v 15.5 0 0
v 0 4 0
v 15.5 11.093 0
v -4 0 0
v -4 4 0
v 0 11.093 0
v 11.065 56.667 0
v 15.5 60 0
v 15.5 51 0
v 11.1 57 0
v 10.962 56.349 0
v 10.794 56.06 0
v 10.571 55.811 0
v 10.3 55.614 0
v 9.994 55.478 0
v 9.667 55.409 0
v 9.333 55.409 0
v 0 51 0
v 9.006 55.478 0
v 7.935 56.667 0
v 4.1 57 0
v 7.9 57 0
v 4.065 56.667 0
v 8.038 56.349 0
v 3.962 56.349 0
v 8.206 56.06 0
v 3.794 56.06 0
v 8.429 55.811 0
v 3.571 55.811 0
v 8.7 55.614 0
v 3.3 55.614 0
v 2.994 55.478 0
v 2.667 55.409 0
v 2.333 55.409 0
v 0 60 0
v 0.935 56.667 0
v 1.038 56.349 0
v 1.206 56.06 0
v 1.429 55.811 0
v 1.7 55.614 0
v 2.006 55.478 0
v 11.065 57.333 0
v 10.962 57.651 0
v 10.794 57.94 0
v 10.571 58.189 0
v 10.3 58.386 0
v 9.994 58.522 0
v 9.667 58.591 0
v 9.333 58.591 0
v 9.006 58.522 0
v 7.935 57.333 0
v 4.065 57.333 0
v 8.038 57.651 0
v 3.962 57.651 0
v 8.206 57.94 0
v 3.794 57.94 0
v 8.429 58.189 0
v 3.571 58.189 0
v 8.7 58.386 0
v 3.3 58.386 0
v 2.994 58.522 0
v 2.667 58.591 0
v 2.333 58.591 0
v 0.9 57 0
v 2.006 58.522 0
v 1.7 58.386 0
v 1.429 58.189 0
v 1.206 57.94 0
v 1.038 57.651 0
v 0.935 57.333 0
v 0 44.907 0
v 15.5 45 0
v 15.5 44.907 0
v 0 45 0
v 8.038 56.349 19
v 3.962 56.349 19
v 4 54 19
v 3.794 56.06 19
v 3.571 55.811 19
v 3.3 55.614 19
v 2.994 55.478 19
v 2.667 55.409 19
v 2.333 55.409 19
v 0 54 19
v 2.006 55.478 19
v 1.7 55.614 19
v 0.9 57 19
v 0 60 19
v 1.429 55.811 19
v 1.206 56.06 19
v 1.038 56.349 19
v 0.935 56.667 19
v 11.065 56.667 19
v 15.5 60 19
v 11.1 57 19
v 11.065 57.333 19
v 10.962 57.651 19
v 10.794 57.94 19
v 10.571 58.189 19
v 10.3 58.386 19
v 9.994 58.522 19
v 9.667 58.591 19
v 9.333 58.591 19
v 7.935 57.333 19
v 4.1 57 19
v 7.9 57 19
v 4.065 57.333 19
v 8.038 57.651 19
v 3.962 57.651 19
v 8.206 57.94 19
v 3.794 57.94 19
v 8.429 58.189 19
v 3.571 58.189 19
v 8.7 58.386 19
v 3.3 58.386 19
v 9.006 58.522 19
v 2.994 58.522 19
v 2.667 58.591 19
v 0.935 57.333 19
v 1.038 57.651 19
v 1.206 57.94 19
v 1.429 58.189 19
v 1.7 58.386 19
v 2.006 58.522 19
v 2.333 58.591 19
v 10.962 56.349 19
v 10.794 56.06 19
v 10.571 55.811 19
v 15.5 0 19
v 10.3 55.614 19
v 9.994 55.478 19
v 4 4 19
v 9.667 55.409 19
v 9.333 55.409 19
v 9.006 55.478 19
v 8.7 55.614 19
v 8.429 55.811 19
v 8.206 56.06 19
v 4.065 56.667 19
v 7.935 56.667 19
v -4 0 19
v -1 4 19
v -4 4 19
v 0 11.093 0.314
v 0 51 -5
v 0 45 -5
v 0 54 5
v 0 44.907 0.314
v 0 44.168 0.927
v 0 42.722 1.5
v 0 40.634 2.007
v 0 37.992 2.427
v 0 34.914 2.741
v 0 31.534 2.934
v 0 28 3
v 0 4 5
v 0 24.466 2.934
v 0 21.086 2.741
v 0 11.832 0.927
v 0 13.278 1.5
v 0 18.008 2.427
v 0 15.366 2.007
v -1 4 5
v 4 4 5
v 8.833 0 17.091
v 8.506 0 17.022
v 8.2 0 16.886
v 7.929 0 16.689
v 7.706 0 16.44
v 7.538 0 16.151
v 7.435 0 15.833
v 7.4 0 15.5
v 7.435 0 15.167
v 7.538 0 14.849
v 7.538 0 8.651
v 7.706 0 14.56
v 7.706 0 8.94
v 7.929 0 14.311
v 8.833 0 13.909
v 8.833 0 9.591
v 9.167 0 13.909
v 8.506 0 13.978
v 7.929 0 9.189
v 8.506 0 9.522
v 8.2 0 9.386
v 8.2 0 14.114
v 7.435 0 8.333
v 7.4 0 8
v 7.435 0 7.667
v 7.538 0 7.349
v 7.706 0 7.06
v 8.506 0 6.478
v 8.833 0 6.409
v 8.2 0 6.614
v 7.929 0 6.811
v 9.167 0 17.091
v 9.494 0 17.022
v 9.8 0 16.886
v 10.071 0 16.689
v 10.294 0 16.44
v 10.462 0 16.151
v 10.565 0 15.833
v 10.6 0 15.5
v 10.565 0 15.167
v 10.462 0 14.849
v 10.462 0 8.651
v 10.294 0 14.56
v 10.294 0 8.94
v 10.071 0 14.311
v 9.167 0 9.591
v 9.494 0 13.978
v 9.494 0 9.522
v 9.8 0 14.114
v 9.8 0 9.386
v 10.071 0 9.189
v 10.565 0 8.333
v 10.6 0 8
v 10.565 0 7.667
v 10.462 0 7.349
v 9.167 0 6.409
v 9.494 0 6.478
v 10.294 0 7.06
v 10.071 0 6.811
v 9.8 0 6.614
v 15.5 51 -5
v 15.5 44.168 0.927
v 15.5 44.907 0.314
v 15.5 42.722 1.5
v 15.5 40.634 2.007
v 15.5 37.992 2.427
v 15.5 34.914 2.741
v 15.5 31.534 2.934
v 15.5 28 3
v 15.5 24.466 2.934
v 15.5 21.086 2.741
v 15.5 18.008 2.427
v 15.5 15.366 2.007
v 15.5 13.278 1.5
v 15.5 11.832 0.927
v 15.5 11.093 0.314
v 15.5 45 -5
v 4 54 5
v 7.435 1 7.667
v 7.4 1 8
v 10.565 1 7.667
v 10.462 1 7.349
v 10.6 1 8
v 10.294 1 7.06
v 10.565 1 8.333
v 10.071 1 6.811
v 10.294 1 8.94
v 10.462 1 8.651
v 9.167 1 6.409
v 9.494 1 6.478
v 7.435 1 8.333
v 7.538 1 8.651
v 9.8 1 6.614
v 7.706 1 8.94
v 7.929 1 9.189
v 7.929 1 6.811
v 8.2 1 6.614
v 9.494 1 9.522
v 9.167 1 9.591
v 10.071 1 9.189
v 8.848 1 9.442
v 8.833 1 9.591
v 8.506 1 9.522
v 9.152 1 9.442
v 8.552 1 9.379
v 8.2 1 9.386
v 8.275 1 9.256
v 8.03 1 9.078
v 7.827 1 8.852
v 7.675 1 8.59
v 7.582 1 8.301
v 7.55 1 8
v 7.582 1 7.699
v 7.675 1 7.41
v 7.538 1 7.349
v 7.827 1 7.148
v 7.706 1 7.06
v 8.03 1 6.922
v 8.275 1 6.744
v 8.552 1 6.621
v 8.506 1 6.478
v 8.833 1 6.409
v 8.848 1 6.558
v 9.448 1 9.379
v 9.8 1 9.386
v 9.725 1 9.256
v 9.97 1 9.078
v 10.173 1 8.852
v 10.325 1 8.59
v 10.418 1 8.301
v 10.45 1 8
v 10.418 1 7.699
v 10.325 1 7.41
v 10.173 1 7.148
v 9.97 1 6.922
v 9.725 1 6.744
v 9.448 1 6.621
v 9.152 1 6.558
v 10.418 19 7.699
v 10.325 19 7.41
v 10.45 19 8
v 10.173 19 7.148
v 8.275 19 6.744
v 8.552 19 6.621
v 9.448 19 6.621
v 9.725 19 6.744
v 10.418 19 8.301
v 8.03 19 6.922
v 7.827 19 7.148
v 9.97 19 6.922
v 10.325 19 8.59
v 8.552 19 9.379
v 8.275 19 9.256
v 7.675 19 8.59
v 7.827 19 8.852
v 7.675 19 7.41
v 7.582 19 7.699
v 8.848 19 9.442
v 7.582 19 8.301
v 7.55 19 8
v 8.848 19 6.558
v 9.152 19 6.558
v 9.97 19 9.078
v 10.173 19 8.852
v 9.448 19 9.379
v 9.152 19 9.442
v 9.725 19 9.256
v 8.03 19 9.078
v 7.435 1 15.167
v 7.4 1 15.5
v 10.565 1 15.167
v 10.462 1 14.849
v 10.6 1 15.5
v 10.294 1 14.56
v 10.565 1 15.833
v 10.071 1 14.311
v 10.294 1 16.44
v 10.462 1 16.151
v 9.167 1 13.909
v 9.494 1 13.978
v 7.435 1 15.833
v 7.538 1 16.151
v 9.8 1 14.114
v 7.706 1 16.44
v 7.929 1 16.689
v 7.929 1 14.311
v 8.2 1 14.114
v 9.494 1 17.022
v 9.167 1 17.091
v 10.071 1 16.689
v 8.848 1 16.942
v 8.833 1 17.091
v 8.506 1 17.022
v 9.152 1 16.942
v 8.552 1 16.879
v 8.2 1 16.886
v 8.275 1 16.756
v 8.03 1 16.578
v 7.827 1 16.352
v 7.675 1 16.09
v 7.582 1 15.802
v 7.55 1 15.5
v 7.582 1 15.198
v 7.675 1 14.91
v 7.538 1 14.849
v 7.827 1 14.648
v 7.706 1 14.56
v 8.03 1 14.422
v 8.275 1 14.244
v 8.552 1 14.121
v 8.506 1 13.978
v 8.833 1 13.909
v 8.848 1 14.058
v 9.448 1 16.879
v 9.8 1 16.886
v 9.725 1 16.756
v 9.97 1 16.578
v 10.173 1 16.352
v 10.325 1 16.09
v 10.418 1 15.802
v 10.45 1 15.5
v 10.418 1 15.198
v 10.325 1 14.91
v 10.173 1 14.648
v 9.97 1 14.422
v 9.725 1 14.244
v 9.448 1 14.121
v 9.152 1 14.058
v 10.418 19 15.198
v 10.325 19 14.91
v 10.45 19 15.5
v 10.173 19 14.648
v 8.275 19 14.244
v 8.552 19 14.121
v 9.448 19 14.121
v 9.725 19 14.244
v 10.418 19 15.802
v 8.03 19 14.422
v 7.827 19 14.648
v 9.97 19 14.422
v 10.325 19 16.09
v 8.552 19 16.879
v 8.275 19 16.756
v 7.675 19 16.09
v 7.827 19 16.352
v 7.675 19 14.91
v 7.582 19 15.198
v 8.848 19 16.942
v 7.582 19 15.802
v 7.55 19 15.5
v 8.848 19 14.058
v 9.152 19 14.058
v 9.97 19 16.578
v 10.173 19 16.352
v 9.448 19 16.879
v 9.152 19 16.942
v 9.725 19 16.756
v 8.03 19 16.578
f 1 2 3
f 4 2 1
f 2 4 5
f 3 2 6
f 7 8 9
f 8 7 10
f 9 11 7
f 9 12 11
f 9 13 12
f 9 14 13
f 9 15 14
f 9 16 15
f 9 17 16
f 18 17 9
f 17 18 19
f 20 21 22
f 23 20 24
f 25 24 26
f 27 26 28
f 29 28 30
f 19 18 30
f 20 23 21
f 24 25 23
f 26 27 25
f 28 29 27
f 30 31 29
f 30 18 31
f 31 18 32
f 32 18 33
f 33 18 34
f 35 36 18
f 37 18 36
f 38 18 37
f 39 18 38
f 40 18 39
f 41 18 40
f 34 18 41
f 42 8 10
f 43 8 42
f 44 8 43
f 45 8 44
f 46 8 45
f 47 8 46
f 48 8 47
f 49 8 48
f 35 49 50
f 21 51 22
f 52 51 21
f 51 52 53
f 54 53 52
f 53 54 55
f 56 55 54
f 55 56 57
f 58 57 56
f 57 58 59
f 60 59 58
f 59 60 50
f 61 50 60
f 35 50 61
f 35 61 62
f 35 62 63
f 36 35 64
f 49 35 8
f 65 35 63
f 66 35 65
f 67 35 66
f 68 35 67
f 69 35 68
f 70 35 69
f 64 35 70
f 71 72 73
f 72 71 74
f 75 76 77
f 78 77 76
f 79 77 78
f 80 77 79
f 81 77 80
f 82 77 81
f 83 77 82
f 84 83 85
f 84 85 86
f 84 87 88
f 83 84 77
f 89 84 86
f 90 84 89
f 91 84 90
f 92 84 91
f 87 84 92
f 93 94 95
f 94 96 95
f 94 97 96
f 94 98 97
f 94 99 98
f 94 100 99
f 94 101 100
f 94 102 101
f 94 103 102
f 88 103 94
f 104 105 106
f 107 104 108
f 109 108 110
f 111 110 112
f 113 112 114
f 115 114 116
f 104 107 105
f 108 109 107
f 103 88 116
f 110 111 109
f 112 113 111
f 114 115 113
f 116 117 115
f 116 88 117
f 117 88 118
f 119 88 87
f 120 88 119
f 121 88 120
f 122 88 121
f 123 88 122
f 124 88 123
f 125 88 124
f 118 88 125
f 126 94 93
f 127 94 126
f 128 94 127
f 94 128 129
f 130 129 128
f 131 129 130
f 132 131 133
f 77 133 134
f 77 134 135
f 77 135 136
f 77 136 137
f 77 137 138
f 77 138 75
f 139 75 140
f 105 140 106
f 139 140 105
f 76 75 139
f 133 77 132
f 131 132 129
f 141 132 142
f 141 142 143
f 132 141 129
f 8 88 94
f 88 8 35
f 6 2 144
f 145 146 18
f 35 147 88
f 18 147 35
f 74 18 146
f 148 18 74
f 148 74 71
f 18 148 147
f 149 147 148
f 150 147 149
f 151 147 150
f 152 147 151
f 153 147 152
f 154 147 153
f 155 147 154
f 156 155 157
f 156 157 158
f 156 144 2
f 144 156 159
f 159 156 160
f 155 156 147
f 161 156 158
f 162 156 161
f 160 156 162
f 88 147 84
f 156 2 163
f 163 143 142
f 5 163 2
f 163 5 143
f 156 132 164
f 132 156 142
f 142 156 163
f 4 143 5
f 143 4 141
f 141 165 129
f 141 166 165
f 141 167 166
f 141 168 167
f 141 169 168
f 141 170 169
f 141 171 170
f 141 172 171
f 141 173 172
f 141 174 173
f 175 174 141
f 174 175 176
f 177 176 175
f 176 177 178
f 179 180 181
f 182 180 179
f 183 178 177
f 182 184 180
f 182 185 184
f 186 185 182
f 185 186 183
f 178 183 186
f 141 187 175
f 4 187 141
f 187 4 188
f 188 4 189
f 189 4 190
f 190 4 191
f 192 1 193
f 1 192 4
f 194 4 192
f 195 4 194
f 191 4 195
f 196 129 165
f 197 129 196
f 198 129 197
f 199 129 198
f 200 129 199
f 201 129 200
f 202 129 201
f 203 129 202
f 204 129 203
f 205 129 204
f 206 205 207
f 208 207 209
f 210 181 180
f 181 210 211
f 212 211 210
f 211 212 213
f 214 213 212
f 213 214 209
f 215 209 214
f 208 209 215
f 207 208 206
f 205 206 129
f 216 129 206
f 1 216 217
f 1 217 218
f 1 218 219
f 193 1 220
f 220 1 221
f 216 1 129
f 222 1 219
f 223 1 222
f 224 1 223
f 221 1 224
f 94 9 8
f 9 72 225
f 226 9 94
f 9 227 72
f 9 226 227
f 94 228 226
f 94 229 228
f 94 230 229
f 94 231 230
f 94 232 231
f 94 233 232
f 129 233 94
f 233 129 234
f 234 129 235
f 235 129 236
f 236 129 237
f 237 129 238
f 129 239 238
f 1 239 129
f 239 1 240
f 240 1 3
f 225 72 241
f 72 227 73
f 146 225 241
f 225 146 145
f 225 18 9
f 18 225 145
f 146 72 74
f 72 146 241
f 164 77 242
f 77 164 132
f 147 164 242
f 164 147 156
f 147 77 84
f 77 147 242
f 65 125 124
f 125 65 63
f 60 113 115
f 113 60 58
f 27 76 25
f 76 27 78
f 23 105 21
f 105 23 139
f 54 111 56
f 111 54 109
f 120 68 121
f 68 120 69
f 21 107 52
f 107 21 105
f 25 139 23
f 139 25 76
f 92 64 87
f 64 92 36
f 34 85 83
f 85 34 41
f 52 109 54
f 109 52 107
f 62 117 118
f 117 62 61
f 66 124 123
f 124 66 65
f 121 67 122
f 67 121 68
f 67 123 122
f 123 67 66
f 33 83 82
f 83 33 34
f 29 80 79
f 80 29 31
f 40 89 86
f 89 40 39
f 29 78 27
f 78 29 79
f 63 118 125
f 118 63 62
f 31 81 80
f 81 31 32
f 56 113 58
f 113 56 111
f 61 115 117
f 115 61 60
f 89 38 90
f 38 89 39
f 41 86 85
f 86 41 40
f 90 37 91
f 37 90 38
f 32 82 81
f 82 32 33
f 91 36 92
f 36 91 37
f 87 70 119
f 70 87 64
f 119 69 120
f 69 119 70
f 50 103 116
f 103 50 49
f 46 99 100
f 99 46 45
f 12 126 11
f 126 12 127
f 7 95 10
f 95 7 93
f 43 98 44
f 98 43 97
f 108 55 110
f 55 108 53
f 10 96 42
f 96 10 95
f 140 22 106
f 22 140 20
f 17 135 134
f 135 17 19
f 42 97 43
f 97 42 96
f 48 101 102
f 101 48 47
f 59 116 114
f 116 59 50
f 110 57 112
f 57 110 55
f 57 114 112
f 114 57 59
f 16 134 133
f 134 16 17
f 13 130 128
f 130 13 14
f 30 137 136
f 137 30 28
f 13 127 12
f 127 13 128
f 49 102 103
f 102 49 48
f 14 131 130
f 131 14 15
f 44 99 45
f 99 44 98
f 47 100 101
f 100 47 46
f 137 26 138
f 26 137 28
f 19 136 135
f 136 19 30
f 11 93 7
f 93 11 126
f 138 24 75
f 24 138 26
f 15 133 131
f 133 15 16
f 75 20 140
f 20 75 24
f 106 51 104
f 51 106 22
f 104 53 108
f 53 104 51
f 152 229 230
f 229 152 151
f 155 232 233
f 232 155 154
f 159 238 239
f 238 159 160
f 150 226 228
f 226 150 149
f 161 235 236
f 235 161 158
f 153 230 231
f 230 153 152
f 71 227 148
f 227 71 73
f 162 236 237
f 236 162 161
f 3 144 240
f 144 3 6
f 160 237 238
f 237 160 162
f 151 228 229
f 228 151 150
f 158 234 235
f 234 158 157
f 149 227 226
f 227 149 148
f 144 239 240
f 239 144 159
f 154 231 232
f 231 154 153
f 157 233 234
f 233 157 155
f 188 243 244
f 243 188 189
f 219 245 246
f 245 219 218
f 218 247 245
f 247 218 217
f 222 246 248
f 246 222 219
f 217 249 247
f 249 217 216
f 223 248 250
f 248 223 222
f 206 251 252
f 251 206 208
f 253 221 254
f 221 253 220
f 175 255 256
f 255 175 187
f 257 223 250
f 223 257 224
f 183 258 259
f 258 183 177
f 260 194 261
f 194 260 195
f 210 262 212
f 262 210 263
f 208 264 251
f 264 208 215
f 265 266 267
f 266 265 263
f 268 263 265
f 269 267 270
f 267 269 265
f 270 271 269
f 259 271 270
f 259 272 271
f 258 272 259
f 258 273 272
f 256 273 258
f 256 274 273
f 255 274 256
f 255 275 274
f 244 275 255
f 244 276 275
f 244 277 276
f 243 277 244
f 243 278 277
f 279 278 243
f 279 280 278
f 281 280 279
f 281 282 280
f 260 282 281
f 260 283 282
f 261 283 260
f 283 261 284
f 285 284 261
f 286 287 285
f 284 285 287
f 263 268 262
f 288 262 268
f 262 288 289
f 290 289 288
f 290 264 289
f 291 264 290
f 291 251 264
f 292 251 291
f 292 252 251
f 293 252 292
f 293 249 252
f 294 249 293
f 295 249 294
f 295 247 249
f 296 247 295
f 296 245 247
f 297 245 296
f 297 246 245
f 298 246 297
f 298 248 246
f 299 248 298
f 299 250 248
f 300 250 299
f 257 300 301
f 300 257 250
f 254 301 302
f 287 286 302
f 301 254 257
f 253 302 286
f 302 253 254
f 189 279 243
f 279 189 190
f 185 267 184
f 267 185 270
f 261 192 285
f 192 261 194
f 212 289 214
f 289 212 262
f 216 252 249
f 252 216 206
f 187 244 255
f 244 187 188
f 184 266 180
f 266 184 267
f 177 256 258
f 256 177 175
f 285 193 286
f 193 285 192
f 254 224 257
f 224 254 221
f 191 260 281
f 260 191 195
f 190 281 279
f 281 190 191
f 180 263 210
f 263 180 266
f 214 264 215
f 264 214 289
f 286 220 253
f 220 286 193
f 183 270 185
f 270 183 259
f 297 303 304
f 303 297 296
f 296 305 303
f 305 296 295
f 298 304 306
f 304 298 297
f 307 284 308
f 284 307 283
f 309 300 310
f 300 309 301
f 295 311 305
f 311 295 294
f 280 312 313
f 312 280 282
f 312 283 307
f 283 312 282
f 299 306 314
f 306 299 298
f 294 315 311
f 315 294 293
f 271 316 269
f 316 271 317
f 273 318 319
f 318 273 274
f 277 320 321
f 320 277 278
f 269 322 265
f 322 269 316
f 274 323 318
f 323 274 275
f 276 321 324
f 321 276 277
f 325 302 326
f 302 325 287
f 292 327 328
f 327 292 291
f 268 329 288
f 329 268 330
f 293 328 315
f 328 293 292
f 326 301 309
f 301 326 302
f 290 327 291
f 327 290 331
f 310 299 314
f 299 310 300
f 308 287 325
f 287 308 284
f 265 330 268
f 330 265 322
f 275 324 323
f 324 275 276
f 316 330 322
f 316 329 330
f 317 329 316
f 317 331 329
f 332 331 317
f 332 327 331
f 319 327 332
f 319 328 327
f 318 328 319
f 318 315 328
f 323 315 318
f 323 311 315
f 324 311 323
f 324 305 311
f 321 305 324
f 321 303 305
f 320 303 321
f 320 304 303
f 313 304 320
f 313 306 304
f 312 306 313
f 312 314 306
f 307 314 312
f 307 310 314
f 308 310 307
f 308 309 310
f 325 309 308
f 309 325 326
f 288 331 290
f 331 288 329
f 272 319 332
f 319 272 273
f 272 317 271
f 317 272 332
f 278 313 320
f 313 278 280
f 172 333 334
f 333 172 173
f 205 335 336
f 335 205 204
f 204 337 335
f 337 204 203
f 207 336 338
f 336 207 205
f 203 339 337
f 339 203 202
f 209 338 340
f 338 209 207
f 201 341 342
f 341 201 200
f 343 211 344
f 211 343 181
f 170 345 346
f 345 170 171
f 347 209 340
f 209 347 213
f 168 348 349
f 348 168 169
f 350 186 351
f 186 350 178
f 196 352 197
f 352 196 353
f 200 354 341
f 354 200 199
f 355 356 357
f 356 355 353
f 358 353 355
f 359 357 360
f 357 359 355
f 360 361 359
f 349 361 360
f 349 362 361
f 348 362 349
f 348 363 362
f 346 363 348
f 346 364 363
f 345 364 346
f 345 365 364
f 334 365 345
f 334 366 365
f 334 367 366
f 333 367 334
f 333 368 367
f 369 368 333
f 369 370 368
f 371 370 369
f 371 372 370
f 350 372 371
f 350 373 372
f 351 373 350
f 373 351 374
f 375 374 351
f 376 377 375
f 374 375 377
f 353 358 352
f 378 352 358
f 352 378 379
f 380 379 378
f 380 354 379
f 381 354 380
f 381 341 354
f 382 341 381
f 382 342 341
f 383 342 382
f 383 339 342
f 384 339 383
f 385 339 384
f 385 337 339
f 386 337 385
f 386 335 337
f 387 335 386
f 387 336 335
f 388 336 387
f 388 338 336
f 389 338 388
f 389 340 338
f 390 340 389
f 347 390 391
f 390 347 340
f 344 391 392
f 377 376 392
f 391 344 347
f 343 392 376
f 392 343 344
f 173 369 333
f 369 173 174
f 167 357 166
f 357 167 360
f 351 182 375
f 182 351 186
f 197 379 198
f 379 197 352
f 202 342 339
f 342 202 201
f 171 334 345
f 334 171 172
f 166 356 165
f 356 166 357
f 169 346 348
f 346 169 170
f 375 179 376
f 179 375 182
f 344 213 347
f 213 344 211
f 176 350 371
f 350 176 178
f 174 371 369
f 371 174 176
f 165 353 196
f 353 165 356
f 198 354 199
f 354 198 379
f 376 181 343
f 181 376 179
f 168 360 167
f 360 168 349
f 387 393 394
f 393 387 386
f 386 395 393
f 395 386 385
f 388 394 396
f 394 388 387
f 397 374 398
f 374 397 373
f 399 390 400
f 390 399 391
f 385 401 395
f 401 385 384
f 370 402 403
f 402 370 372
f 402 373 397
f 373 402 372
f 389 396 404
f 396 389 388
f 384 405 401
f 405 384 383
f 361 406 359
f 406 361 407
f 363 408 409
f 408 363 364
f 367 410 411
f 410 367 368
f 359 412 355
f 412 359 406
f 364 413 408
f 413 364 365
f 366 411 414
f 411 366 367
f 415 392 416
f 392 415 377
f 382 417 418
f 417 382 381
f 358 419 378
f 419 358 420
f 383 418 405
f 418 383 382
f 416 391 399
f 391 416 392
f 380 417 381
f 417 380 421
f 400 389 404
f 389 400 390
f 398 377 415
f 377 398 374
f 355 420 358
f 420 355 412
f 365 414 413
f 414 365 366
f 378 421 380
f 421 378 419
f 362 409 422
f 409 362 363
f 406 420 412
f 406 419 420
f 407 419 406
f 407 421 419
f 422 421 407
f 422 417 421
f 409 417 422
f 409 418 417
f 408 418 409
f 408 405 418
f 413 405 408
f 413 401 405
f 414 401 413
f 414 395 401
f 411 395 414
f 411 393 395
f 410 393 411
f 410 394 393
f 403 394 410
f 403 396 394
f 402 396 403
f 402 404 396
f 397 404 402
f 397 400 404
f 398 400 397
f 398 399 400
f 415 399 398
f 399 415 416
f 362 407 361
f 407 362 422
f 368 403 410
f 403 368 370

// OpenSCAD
// 25mm M3 screws at top, 12mm M3 screws at bottom

$fn=30;

//rotate([0,90,0])
difference() {
   union() {
      linear_extrude(height=19) polygon(points=[[-4,0],[-4,4],[0,4],[0,54],[0,54],[0,60],[15.5,60],[15.5,0]]);
      translate([0,45,-5]) cube([15.5,6,5.1]);
      //translate([0,-2,0]) cube([15.5,6,5.1]);
   }

   translate([-1,4,5]) cube([5,50,15]);

   translate([2.5,57,-1]) cylinder(d=3.2,h=50);
   translate([2.5+7,57,-1]) cylinder(d=3.2,h=50);

   translate([-1,28,0]) rotate([0,90,0]) scale([3.0,17,1]) cylinder(r=1,h=20);

   /* drag chain attachment */
   translate([9,-1,8]) rotate([-90,0,0]) cylinder(d=3.2,h=2);
   translate([9,-1,8]) rotate([-90,0,0]) cylinder(d=2.9,h=20);
   translate([9,-1,8+7.5]) rotate([-90,0,0]) cylinder(d=3.2,h=2);
   translate([9,-1,8+7.5]) rotate([-90,0,0]) cylinder(d=2.9,h=20);
}
